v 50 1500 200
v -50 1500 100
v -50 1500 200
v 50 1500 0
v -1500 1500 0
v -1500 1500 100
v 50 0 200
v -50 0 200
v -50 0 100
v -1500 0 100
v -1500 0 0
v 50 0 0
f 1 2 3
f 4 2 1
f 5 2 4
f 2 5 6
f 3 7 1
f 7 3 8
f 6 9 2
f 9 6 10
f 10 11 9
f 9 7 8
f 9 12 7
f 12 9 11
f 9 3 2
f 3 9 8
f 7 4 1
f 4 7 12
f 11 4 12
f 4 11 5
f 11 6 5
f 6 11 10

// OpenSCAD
// file: templates/basic-dims.scad
unit = 1000;

section_width = unit * 1.5;
section_height = unit * 2.5;
section_thickness = unit * 0.1;

rt = sqrt(2);

//  -- Notes --
//  Z is UP
//  X is FORWARD (out of the screen)
// main file
include <./templates/basic-dims.scad>

wall_offset = section_thickness/2;

module flat_roof_straight() {
    rotate([0, 0, 90])
    translate([0, -wall_offset, 0])
    union() {
        translate([0, 0, section_thickness])
        cube([section_width, section_thickness, section_thickness]);
        cube([section_width, section_width + wall_offset, section_thickness]);
    }
}

module flat_roof_corner() {
    rotate([0, 0, 180])
    translate([-wall_offset, -wall_offset - section_width, 0])
    union() {
        translate([0, 0, section_thickness]) {
            cube([section_width + wall_offset, section_thickness, section_thickness]);
            cube([section_thickness, section_width + wall_offset, section_thickness]);
        }
        cube([
                section_width + wall_offset,
                section_width + wall_offset,
                section_thickness
            ]);
    }
}

module flat_roof_diagonal() {
    corrected_width = section_width + wall_offset;

    rotate([0, 0, 180])
    translate([-wall_offset, -wall_offset - section_width, 0])
    union() {
        linear_extrude(section_thickness)
        polygon([
            [0, corrected_width],
            [corrected_width, corrected_width],
            [corrected_width, 0]
        ]);

        translate([0, 0, section_thickness])
        linear_extrude(section_thickness)
        polygon([
            [0, corrected_width],
            [section_thickness, corrected_width],
            [corrected_width, section_thickness],
            [corrected_width, 0]
        ]);
    }
}

flat_roof_straight();
